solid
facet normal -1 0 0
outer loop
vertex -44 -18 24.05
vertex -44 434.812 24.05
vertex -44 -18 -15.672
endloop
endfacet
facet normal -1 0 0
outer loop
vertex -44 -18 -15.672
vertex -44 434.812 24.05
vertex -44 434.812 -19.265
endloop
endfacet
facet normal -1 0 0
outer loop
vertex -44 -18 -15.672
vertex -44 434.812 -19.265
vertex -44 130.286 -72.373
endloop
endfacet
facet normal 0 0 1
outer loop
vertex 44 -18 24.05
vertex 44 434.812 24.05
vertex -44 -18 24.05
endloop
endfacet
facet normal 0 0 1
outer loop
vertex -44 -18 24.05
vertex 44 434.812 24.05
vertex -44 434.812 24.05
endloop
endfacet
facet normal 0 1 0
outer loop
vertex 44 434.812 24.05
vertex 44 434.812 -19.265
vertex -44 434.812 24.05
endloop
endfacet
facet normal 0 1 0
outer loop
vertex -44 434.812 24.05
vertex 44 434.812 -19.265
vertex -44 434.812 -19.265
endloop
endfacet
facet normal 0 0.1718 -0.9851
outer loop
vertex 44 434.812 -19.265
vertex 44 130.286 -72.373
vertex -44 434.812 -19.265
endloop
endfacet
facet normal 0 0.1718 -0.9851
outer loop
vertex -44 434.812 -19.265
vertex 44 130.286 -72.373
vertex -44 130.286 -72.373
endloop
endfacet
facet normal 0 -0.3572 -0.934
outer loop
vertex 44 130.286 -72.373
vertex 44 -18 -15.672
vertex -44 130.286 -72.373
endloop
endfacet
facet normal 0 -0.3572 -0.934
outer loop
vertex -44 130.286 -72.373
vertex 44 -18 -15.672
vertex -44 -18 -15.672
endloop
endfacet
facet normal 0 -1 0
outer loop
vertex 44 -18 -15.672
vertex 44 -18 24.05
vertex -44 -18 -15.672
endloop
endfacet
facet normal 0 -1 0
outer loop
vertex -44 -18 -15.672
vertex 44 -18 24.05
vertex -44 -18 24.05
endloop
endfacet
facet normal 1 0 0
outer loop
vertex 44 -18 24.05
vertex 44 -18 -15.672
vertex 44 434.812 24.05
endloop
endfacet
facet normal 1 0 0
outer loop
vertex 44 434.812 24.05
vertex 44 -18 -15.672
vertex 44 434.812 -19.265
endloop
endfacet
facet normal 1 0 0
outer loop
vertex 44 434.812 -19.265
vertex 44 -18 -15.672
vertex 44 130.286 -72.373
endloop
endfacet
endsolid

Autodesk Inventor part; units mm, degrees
ref_plane "XZ Plane" through (0, 0, 0) normal (0, 1, 0) x (-1, 0, 0)
sketch "BoundingBox" plane through (0, 0, 0) normal (1, 0, 0) x (0, 1, 0)
  line L0 (434.8115, 24.0504) -> (-18, 24.0504)
  line L1 (-18, 24.0504) -> (-18, -15.6719)
  line L2 (-18, -15.6719) -> (130.2861, -72.3729)
  line L3 (130.2861, -72.3729) -> (434.8115, -19.2646)
  line L4 (434.8115, -19.2646) -> (434.8115, 24.0504)
  point P0 (0, 0)
  point P1 (417.3115, 0.6447)
  point P2 (-18, 4.1892)
  dimension "d5" = 24.0504
  dimension "d6" = 4.1893
  dimension "d7" = 110.926
  dimension "d8" = 452.8115
  dimension "d9" = 39.7223
  dimension "d10" = 43.315
  dimension "d11" = 99.893
  dimension "d12" = 56.7009
  dimension "d13" = 17.5
  dimension "d14" = 23.4057
extrude "BoundingBoxFeature" add sketch "BoundingBox" along normal mid plane 88
properties part number "UpperArmBoundingBox"
